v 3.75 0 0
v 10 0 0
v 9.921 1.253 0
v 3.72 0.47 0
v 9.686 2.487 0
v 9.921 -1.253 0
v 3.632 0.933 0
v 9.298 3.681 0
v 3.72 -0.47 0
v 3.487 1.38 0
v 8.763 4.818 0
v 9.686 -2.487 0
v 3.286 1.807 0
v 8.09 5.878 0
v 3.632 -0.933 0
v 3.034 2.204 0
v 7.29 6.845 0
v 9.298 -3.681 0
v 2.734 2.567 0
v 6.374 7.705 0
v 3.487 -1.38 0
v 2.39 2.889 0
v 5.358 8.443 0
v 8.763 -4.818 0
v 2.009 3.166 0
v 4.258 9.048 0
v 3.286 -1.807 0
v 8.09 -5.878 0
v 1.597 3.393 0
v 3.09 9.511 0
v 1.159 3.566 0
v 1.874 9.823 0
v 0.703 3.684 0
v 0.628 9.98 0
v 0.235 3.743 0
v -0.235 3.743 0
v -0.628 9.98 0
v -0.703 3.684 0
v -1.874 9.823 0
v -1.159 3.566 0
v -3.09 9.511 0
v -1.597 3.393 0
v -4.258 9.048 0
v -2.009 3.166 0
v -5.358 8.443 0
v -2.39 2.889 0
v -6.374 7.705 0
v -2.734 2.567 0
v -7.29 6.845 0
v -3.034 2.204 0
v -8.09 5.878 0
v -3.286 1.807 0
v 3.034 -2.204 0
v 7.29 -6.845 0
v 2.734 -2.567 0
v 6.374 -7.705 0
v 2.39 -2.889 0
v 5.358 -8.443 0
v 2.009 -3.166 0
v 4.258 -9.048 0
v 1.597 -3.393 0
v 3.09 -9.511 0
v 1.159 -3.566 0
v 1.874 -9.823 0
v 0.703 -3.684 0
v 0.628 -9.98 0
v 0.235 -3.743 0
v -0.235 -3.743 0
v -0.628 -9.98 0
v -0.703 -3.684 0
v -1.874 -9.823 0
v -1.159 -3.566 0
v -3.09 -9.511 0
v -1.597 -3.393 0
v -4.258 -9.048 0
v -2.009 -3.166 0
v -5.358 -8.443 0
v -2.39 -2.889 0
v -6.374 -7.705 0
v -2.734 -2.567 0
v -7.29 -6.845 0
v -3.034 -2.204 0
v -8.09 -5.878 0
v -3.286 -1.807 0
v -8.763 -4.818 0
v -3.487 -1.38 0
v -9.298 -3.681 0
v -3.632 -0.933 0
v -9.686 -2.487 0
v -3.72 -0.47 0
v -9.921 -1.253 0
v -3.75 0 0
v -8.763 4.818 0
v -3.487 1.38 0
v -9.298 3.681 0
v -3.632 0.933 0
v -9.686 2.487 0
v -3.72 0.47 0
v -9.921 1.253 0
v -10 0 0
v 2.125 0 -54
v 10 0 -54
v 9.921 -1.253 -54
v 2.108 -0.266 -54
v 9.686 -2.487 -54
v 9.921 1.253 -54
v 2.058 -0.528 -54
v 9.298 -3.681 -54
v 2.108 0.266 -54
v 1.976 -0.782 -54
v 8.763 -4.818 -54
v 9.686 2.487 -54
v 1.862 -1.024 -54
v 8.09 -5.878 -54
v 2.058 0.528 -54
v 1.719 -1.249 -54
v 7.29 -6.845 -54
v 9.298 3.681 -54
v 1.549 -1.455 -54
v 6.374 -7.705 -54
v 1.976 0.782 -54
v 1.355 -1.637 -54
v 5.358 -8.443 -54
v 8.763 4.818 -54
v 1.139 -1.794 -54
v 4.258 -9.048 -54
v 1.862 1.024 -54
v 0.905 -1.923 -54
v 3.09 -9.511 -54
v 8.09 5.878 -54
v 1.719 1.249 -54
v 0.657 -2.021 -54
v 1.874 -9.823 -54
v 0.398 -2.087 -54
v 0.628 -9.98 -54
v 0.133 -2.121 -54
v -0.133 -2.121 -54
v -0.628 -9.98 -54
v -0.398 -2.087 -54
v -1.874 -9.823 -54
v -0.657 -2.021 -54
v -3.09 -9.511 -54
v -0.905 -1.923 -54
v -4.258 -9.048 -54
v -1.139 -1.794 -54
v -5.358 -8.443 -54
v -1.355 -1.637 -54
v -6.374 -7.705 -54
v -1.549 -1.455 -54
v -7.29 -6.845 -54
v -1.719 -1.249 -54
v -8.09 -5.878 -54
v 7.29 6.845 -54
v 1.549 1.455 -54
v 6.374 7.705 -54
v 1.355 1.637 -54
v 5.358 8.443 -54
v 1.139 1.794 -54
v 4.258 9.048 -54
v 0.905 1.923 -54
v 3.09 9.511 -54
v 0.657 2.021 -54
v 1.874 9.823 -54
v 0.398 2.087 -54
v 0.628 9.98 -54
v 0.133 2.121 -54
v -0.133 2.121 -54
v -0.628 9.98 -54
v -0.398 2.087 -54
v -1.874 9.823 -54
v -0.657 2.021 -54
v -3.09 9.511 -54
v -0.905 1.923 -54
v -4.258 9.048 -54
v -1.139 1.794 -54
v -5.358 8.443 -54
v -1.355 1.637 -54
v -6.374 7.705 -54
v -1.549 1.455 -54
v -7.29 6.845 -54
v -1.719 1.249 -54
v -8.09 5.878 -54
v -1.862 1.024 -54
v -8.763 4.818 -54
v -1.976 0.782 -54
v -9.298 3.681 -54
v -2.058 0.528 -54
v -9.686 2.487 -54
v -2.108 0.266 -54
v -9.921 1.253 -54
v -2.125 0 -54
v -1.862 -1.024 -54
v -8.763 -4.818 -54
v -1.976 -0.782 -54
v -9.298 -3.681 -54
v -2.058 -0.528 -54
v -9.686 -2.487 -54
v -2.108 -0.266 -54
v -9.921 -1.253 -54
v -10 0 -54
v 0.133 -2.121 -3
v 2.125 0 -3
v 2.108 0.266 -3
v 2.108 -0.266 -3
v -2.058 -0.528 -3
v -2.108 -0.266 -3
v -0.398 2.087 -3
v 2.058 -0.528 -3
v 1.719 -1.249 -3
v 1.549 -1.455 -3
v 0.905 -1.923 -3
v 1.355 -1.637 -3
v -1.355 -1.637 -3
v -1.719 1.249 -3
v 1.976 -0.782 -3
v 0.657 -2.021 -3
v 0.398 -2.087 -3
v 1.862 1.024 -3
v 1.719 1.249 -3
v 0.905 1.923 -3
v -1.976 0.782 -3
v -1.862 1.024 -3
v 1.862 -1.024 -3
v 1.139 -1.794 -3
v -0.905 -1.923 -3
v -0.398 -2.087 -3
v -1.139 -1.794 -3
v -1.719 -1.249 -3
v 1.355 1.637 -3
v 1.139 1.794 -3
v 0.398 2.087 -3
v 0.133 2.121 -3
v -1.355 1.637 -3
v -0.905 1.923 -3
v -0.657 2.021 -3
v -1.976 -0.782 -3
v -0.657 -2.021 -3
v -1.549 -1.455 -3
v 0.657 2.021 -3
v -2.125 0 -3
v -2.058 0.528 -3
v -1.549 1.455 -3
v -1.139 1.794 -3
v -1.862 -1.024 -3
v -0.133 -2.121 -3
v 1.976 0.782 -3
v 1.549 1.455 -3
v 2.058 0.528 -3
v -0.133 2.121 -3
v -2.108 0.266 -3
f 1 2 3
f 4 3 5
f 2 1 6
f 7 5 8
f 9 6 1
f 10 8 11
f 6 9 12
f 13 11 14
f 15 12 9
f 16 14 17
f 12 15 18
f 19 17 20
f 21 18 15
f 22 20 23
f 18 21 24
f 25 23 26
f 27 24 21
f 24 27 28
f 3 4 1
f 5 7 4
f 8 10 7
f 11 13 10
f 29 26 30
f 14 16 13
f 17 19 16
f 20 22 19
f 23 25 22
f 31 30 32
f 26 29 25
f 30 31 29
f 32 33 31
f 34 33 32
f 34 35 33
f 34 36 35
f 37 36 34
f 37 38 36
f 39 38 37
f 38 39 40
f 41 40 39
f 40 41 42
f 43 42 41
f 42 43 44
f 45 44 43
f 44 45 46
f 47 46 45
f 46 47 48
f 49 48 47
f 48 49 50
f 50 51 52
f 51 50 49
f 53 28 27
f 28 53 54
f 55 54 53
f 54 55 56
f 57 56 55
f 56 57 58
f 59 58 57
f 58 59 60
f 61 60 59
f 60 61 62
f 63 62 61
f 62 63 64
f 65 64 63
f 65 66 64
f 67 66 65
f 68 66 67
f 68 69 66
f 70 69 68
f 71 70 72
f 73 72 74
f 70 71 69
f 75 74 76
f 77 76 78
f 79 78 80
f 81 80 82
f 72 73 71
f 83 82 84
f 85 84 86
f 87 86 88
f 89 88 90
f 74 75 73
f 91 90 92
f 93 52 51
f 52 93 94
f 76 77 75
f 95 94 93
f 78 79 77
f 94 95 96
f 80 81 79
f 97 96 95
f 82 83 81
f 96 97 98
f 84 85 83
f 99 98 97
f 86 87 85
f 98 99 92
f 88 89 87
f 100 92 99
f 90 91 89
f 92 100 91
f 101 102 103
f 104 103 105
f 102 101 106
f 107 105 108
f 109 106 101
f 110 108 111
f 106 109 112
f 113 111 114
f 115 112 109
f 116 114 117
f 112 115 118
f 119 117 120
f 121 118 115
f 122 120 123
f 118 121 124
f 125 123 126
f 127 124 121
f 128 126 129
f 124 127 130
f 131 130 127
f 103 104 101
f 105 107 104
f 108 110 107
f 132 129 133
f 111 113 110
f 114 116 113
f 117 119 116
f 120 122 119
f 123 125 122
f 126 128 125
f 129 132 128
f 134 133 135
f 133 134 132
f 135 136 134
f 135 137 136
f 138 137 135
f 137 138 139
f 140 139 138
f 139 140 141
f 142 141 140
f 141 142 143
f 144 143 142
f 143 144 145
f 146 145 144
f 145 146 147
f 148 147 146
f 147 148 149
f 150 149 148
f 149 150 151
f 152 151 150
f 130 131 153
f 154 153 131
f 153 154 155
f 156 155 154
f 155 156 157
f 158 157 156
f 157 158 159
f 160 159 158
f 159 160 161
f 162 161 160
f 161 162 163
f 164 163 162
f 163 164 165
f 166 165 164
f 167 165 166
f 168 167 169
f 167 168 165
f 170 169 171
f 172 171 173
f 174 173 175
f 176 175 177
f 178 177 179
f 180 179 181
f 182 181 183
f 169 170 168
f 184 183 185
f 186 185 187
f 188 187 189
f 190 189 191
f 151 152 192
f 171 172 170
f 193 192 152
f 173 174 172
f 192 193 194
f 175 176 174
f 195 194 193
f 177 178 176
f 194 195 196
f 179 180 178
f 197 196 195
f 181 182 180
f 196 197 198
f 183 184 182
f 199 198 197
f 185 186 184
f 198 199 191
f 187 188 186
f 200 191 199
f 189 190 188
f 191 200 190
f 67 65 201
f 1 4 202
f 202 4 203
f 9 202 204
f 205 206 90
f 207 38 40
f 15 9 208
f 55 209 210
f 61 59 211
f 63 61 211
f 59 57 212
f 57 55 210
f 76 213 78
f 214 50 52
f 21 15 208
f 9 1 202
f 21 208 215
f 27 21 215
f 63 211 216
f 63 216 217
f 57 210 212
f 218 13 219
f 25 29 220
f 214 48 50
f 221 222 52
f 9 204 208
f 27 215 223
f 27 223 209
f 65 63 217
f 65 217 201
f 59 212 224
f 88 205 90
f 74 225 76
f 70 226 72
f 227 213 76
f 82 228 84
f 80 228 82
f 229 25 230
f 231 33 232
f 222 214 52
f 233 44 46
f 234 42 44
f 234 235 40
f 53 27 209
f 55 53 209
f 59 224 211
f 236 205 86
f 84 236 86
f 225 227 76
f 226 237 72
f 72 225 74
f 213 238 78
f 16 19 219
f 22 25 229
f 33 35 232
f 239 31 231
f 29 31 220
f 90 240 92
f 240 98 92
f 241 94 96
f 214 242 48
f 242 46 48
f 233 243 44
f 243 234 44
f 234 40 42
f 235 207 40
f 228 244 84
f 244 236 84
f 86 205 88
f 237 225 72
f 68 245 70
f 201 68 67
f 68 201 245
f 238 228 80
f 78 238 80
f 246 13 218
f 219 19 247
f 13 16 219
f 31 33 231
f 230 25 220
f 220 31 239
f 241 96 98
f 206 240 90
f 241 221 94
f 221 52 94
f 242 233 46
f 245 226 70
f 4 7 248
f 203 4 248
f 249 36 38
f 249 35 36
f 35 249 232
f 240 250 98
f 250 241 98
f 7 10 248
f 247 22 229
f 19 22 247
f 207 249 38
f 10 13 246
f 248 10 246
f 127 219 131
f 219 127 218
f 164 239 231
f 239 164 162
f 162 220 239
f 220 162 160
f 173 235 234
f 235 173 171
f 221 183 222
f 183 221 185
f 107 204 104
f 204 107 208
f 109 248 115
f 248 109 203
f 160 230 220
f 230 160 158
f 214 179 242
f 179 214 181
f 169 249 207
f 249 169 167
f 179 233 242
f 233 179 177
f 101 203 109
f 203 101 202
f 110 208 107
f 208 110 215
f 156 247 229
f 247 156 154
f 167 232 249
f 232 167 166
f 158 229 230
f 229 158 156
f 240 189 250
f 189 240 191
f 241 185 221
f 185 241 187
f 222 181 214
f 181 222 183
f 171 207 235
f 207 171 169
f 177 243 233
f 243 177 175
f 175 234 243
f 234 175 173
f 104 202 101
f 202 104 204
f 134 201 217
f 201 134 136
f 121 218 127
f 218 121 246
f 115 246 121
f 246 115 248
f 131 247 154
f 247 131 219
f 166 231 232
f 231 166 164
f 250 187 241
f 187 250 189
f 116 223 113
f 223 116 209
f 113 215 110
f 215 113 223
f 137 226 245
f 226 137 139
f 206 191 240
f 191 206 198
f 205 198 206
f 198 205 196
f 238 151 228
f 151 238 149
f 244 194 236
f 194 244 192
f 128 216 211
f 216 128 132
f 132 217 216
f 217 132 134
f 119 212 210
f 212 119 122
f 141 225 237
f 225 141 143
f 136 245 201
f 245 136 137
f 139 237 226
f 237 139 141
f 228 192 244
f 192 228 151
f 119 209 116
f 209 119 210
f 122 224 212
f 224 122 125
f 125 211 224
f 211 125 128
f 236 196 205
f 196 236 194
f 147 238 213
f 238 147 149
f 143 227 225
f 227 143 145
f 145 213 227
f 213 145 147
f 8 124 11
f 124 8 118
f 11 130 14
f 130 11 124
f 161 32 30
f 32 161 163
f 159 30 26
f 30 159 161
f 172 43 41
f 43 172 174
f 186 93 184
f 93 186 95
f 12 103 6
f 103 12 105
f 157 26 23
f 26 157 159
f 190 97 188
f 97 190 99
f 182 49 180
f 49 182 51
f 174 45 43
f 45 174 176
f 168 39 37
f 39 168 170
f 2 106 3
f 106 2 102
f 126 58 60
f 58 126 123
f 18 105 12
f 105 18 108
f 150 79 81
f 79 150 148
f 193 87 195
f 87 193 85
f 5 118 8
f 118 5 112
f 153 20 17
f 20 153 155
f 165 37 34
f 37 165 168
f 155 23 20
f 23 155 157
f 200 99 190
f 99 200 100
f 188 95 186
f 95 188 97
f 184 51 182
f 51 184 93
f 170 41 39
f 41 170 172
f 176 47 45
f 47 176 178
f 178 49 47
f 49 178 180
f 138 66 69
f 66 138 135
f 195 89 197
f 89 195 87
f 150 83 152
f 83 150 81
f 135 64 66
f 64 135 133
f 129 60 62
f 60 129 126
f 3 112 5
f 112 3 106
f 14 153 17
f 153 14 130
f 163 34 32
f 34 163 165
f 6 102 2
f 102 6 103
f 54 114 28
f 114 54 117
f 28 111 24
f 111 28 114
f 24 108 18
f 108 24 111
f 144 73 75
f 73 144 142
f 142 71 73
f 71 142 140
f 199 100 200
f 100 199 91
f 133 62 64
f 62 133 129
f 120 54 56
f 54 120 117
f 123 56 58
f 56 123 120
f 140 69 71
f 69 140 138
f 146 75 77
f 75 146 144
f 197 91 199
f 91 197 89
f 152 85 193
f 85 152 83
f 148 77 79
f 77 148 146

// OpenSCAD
$fn = 50;


difference() {
	union() {
		translate(v = [0, 0, -54.0000000000]) {
			cylinder(h = 54, r = 10.0000000000);
		}
		cylinder(h = 0, r = 20.0000000000);
	}
	union() {
		translate(v = [0, 0, 0]) {
			rotate(a = [0, 0, 0]) {
				difference() {
					union() {
						#translate(v = [0, 0, -54.0000000000]) {
							cylinder(h = 54, r = 2.0000000000);
						}
						#translate(v = [0, 0, -3]) {
							cylinder(h = 3, r1 = 2.1250000000, r2 = 3.7500000000);
						}
						#translate(v = [0, 0, -54.0000000000]) {
							cylinder(h = 54, r = 2.1250000000);
						}
						#translate(v = [0, 0, -54.0000000000]) {
							cylinder(h = 54, r = 2.0000000000);
						}
					}
					union();
				}
			}
		}
	}
}
